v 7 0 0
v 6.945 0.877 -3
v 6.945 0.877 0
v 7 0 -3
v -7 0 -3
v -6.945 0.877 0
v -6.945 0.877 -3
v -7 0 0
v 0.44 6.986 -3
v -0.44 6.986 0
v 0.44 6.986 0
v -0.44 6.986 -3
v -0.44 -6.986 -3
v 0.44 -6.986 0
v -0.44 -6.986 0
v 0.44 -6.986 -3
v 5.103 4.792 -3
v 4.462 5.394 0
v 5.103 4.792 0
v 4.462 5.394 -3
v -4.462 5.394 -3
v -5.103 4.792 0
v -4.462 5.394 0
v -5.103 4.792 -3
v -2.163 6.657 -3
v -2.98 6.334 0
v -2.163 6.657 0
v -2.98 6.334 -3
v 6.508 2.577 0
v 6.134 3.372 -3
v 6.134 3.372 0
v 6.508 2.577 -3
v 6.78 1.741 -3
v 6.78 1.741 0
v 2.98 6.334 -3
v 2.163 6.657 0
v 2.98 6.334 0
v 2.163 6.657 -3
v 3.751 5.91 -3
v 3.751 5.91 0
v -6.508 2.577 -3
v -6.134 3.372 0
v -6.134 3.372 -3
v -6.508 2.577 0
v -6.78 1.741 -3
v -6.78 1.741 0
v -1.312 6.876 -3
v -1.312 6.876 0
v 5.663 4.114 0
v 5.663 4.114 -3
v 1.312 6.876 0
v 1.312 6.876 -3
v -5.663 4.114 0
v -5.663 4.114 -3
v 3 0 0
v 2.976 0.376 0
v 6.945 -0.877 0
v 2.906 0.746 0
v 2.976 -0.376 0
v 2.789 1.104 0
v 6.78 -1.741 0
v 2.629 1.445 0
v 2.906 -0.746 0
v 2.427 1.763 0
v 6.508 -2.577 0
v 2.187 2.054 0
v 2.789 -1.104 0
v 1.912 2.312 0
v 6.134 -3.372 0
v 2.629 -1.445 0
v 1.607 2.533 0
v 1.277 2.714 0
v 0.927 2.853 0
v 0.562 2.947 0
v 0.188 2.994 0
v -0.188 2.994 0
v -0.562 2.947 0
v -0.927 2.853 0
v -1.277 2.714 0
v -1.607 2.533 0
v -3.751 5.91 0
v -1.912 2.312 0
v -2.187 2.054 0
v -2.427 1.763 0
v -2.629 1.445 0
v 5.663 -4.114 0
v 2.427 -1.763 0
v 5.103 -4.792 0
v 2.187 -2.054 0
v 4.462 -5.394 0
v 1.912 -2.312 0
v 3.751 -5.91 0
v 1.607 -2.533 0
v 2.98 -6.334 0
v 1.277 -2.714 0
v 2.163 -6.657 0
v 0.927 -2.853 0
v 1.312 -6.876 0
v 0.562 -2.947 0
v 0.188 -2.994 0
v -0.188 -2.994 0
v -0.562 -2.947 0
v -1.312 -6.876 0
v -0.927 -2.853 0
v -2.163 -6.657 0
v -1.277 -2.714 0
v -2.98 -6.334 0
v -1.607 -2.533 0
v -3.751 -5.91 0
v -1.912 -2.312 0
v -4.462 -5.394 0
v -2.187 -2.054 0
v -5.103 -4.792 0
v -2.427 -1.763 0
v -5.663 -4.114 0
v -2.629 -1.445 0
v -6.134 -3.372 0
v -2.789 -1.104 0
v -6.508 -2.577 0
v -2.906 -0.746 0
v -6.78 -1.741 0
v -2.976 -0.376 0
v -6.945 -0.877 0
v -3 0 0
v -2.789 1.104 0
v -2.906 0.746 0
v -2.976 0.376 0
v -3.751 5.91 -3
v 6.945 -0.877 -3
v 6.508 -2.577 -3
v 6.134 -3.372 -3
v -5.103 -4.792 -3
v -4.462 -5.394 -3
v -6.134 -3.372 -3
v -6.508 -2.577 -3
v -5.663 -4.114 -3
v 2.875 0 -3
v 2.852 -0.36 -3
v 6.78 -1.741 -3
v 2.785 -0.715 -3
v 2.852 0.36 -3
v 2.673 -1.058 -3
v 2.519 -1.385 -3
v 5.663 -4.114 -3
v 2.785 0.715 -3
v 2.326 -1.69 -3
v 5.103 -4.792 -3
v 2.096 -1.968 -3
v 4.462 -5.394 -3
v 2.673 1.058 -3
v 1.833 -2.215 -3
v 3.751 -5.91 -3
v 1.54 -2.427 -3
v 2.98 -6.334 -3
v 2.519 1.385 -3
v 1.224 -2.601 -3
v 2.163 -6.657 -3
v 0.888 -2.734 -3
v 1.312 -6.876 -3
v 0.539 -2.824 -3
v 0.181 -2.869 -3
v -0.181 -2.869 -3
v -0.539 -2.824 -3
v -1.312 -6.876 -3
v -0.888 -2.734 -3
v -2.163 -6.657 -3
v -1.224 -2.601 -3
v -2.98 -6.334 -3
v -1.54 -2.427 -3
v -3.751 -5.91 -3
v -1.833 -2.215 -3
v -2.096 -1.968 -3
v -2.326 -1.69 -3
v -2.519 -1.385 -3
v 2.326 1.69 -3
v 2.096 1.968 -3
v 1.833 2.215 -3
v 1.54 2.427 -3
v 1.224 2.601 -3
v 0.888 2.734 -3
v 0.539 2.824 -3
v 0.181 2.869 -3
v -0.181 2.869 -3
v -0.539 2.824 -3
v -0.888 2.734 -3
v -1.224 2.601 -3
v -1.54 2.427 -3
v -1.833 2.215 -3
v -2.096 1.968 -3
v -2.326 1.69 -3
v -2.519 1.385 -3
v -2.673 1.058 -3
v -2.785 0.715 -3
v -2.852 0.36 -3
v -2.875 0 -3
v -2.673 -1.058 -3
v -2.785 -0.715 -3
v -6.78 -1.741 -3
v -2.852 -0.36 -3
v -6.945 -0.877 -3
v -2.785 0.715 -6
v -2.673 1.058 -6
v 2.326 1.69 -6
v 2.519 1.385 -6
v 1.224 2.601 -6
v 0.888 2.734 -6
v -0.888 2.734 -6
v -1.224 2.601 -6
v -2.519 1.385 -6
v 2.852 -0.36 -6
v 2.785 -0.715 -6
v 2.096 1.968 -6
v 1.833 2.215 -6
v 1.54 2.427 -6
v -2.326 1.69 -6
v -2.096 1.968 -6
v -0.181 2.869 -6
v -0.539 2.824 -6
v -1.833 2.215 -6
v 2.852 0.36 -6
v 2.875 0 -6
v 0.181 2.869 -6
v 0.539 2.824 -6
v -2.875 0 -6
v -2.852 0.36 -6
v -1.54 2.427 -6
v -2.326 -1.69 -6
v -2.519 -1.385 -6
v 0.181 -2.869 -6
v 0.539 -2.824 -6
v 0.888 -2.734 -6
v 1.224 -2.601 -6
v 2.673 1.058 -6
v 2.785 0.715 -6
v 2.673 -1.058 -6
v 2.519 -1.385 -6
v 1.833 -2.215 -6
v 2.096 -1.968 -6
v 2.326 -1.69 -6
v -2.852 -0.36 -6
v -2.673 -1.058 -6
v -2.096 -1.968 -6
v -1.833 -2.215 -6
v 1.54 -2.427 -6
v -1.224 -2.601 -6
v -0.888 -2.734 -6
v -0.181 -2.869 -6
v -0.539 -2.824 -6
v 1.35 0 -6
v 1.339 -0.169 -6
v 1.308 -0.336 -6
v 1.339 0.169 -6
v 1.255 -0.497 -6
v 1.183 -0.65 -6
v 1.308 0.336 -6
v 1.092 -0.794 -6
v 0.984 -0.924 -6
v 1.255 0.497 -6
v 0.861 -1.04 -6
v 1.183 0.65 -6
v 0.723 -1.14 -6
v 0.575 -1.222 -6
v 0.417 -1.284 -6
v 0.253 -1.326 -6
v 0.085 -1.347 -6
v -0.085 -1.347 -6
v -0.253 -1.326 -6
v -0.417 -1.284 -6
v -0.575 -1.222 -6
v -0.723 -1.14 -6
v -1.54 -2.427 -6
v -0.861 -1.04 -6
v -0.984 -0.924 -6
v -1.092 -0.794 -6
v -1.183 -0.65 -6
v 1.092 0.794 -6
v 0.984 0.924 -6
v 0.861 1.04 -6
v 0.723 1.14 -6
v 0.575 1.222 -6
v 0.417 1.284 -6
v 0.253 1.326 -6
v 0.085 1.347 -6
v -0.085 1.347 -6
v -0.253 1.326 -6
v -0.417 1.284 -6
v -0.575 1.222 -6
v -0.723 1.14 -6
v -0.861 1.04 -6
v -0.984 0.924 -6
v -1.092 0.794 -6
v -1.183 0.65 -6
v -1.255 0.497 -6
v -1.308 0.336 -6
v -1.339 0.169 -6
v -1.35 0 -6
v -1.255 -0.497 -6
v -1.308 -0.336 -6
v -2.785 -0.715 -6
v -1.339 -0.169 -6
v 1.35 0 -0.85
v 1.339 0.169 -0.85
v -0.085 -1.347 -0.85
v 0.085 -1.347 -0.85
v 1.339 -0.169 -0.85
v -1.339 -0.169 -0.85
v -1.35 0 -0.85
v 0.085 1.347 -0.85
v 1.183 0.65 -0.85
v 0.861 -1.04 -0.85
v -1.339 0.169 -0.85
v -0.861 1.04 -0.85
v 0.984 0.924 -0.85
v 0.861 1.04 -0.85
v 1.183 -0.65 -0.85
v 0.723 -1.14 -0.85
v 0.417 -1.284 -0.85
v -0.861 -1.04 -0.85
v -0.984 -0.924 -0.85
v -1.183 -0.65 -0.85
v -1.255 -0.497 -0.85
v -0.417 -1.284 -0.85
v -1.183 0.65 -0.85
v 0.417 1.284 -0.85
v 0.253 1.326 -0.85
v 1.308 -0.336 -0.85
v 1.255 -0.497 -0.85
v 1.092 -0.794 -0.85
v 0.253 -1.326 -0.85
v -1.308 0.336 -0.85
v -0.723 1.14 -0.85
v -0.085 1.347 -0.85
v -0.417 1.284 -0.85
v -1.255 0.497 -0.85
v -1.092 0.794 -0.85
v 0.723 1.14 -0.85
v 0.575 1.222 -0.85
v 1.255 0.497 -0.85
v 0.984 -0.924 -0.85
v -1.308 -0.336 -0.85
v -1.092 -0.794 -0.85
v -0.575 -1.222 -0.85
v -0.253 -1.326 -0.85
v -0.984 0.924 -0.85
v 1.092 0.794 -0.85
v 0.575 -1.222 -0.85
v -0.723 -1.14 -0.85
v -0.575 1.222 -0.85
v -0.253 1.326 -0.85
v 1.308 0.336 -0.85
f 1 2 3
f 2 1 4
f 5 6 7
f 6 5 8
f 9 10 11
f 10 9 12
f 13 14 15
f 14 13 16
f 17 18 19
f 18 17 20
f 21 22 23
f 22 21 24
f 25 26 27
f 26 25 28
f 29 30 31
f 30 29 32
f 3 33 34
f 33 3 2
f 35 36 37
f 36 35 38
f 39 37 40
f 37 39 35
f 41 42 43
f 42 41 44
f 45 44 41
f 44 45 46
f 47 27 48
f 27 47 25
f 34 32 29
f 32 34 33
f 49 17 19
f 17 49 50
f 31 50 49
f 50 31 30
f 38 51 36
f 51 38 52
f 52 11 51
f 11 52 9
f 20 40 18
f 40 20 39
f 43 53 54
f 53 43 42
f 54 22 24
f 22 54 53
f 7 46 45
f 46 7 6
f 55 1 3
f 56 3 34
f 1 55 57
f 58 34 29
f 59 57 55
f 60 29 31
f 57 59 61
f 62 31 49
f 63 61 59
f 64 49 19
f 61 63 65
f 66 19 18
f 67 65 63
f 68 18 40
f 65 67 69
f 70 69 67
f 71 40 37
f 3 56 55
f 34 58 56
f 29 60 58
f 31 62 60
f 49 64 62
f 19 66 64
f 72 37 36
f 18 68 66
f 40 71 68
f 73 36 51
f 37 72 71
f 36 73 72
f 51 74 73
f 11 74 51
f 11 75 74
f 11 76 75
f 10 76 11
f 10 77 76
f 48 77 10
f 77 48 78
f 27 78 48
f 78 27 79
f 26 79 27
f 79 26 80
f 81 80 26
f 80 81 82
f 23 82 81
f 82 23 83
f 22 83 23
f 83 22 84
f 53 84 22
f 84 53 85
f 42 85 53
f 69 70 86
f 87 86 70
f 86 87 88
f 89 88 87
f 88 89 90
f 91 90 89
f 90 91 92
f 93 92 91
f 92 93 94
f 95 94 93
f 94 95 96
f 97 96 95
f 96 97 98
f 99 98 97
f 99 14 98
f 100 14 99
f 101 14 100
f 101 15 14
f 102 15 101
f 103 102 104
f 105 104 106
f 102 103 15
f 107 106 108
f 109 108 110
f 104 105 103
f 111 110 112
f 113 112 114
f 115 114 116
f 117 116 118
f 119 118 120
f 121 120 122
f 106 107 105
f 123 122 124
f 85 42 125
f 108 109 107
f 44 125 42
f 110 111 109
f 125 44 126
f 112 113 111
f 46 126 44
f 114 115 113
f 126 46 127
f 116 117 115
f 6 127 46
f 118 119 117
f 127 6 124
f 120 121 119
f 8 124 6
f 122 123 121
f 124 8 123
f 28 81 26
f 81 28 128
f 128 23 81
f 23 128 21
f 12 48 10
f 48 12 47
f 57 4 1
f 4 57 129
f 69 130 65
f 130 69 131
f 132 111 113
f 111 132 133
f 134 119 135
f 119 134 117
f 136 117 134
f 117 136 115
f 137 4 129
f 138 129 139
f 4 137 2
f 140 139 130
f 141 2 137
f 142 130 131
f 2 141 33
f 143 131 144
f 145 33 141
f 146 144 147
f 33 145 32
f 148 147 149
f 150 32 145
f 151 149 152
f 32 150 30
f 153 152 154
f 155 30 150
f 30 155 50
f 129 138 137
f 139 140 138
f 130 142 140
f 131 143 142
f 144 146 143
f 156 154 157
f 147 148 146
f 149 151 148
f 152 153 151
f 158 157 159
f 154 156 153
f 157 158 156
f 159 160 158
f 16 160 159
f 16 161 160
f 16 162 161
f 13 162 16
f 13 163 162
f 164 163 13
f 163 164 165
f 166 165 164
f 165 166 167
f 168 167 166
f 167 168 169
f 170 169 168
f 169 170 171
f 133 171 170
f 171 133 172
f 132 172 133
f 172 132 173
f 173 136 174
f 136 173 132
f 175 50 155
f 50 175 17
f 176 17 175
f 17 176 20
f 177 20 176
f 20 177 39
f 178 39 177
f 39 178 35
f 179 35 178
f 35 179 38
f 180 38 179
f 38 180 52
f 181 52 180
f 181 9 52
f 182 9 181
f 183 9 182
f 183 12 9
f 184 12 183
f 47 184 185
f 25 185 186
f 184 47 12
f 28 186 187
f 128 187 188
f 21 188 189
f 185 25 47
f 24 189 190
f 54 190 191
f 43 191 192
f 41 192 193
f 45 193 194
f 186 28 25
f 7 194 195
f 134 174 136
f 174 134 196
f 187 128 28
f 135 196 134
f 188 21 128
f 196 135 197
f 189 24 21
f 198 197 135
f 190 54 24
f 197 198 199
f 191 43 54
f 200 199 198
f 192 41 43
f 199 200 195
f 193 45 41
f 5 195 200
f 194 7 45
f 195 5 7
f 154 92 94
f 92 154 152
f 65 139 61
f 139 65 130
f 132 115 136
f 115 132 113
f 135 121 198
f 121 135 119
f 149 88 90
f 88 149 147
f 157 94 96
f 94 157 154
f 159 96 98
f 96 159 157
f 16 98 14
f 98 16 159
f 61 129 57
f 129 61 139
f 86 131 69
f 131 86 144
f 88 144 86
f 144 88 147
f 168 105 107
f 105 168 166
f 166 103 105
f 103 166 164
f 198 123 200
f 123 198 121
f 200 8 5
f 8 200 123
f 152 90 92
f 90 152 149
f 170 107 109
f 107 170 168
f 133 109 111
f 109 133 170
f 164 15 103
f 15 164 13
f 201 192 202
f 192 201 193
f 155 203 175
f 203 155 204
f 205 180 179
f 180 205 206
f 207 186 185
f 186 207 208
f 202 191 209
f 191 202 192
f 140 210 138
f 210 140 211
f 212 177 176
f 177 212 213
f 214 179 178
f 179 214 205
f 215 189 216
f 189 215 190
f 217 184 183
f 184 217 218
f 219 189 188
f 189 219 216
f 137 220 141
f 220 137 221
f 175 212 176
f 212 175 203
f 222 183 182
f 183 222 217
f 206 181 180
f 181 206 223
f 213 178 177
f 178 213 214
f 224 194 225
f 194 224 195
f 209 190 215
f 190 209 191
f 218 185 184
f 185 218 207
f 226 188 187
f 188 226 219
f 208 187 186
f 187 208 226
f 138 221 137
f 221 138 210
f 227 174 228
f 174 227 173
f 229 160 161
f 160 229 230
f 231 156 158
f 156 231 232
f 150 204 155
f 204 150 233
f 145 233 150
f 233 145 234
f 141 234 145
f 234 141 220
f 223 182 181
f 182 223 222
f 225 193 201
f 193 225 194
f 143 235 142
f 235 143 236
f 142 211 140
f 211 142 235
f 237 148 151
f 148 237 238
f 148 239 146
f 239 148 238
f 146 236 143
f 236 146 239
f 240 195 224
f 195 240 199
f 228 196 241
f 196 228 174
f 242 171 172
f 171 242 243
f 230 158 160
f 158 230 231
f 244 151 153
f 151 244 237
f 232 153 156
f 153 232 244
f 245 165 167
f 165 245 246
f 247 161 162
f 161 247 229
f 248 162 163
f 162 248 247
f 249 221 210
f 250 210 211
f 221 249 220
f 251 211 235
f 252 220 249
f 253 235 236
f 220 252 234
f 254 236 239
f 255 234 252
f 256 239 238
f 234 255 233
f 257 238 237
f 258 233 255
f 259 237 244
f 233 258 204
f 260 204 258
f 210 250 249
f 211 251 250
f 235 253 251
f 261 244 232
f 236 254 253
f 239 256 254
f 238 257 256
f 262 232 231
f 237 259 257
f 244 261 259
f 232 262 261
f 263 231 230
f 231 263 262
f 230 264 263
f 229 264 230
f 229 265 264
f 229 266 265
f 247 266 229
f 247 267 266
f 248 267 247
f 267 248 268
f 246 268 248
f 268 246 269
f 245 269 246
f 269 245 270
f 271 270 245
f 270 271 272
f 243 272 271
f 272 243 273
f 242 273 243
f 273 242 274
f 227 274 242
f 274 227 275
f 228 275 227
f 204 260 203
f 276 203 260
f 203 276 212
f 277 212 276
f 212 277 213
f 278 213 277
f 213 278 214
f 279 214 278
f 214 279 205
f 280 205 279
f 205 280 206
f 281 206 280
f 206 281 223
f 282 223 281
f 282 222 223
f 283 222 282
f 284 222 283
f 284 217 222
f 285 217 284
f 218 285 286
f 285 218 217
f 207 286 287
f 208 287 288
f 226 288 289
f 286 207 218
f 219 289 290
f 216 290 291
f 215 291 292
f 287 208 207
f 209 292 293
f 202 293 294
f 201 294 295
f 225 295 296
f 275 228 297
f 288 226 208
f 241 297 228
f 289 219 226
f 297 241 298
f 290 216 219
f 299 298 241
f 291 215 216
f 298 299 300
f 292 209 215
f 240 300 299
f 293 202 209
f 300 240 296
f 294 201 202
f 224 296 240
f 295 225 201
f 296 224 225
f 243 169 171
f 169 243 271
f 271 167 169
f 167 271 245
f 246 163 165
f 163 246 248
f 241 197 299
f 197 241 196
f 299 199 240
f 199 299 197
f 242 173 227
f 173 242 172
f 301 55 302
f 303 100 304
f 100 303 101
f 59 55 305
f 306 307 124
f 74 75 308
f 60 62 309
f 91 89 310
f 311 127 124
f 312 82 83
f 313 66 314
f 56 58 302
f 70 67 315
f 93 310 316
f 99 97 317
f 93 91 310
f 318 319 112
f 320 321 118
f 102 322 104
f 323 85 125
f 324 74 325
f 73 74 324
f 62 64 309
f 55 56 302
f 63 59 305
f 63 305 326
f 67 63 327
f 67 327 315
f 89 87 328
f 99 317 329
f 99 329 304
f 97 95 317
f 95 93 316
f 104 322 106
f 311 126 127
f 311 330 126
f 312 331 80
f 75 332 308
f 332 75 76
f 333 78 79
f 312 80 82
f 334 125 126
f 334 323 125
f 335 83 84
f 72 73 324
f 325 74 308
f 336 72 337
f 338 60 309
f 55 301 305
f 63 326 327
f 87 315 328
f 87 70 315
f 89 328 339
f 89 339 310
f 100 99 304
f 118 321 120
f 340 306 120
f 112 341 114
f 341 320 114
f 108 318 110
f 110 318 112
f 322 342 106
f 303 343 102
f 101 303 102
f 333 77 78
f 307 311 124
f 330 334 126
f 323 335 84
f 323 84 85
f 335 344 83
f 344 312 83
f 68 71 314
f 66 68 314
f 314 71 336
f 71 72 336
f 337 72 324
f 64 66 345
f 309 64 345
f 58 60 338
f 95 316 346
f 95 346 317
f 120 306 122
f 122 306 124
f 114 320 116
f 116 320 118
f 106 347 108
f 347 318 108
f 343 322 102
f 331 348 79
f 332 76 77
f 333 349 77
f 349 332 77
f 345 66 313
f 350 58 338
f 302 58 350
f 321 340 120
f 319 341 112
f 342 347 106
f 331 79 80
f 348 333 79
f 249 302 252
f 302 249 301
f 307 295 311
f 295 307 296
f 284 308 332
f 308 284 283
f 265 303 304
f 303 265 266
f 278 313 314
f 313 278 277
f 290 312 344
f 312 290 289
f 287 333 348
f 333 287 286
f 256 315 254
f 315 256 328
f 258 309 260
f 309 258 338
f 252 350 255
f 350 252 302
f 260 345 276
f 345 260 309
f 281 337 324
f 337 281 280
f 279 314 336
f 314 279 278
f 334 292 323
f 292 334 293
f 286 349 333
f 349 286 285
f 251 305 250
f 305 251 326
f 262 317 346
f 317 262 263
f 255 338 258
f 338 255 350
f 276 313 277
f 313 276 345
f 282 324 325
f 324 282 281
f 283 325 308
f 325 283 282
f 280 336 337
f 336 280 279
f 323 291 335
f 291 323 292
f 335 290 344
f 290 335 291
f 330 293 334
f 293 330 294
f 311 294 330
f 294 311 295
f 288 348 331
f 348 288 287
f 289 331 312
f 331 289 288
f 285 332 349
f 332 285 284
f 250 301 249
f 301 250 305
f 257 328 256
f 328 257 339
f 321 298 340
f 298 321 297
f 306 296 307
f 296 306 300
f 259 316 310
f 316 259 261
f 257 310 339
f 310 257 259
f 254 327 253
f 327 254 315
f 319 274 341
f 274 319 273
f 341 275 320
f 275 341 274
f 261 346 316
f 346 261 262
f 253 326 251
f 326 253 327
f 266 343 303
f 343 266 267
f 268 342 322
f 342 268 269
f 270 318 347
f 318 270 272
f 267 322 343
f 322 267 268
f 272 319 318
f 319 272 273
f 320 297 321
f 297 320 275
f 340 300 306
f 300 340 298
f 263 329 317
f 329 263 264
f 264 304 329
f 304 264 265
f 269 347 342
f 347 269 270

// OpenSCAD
$fn = 50;


difference() {
	union() {
		translate(v = [0, 0, -3.0000000000]) {
			cylinder(h = 3, r = 7.0000000000);
		}
		translate(v = [0, 0, -6.0000000000]) {
			cylinder(h = 6, r = 2.8750000000);
		}
	}
	union() {
		translate(v = [0, 0, 0]) {
			rotate(a = [0, 0, 0]) {
				difference() {
					union() {
						translate(v = [0, 0, -6.0000000000]) {
							cylinder(h = 6, r = 1.0000000000);
						}
						translate(v = [0, 0, -0.8500000000]) {
							cylinder(h = 0.8500000000, r1 = 1.3500000000, r2 = 3.0000000000);
						}
						translate(v = [0, 0, -6.0000000000]) {
							cylinder(h = 6, r = 1.3500000000);
						}
						translate(v = [0, 0, -6.0000000000]) {
							cylinder(h = 6, r = 1.0000000000);
						}
					}
					union();
				}
			}
		}
	}
}
